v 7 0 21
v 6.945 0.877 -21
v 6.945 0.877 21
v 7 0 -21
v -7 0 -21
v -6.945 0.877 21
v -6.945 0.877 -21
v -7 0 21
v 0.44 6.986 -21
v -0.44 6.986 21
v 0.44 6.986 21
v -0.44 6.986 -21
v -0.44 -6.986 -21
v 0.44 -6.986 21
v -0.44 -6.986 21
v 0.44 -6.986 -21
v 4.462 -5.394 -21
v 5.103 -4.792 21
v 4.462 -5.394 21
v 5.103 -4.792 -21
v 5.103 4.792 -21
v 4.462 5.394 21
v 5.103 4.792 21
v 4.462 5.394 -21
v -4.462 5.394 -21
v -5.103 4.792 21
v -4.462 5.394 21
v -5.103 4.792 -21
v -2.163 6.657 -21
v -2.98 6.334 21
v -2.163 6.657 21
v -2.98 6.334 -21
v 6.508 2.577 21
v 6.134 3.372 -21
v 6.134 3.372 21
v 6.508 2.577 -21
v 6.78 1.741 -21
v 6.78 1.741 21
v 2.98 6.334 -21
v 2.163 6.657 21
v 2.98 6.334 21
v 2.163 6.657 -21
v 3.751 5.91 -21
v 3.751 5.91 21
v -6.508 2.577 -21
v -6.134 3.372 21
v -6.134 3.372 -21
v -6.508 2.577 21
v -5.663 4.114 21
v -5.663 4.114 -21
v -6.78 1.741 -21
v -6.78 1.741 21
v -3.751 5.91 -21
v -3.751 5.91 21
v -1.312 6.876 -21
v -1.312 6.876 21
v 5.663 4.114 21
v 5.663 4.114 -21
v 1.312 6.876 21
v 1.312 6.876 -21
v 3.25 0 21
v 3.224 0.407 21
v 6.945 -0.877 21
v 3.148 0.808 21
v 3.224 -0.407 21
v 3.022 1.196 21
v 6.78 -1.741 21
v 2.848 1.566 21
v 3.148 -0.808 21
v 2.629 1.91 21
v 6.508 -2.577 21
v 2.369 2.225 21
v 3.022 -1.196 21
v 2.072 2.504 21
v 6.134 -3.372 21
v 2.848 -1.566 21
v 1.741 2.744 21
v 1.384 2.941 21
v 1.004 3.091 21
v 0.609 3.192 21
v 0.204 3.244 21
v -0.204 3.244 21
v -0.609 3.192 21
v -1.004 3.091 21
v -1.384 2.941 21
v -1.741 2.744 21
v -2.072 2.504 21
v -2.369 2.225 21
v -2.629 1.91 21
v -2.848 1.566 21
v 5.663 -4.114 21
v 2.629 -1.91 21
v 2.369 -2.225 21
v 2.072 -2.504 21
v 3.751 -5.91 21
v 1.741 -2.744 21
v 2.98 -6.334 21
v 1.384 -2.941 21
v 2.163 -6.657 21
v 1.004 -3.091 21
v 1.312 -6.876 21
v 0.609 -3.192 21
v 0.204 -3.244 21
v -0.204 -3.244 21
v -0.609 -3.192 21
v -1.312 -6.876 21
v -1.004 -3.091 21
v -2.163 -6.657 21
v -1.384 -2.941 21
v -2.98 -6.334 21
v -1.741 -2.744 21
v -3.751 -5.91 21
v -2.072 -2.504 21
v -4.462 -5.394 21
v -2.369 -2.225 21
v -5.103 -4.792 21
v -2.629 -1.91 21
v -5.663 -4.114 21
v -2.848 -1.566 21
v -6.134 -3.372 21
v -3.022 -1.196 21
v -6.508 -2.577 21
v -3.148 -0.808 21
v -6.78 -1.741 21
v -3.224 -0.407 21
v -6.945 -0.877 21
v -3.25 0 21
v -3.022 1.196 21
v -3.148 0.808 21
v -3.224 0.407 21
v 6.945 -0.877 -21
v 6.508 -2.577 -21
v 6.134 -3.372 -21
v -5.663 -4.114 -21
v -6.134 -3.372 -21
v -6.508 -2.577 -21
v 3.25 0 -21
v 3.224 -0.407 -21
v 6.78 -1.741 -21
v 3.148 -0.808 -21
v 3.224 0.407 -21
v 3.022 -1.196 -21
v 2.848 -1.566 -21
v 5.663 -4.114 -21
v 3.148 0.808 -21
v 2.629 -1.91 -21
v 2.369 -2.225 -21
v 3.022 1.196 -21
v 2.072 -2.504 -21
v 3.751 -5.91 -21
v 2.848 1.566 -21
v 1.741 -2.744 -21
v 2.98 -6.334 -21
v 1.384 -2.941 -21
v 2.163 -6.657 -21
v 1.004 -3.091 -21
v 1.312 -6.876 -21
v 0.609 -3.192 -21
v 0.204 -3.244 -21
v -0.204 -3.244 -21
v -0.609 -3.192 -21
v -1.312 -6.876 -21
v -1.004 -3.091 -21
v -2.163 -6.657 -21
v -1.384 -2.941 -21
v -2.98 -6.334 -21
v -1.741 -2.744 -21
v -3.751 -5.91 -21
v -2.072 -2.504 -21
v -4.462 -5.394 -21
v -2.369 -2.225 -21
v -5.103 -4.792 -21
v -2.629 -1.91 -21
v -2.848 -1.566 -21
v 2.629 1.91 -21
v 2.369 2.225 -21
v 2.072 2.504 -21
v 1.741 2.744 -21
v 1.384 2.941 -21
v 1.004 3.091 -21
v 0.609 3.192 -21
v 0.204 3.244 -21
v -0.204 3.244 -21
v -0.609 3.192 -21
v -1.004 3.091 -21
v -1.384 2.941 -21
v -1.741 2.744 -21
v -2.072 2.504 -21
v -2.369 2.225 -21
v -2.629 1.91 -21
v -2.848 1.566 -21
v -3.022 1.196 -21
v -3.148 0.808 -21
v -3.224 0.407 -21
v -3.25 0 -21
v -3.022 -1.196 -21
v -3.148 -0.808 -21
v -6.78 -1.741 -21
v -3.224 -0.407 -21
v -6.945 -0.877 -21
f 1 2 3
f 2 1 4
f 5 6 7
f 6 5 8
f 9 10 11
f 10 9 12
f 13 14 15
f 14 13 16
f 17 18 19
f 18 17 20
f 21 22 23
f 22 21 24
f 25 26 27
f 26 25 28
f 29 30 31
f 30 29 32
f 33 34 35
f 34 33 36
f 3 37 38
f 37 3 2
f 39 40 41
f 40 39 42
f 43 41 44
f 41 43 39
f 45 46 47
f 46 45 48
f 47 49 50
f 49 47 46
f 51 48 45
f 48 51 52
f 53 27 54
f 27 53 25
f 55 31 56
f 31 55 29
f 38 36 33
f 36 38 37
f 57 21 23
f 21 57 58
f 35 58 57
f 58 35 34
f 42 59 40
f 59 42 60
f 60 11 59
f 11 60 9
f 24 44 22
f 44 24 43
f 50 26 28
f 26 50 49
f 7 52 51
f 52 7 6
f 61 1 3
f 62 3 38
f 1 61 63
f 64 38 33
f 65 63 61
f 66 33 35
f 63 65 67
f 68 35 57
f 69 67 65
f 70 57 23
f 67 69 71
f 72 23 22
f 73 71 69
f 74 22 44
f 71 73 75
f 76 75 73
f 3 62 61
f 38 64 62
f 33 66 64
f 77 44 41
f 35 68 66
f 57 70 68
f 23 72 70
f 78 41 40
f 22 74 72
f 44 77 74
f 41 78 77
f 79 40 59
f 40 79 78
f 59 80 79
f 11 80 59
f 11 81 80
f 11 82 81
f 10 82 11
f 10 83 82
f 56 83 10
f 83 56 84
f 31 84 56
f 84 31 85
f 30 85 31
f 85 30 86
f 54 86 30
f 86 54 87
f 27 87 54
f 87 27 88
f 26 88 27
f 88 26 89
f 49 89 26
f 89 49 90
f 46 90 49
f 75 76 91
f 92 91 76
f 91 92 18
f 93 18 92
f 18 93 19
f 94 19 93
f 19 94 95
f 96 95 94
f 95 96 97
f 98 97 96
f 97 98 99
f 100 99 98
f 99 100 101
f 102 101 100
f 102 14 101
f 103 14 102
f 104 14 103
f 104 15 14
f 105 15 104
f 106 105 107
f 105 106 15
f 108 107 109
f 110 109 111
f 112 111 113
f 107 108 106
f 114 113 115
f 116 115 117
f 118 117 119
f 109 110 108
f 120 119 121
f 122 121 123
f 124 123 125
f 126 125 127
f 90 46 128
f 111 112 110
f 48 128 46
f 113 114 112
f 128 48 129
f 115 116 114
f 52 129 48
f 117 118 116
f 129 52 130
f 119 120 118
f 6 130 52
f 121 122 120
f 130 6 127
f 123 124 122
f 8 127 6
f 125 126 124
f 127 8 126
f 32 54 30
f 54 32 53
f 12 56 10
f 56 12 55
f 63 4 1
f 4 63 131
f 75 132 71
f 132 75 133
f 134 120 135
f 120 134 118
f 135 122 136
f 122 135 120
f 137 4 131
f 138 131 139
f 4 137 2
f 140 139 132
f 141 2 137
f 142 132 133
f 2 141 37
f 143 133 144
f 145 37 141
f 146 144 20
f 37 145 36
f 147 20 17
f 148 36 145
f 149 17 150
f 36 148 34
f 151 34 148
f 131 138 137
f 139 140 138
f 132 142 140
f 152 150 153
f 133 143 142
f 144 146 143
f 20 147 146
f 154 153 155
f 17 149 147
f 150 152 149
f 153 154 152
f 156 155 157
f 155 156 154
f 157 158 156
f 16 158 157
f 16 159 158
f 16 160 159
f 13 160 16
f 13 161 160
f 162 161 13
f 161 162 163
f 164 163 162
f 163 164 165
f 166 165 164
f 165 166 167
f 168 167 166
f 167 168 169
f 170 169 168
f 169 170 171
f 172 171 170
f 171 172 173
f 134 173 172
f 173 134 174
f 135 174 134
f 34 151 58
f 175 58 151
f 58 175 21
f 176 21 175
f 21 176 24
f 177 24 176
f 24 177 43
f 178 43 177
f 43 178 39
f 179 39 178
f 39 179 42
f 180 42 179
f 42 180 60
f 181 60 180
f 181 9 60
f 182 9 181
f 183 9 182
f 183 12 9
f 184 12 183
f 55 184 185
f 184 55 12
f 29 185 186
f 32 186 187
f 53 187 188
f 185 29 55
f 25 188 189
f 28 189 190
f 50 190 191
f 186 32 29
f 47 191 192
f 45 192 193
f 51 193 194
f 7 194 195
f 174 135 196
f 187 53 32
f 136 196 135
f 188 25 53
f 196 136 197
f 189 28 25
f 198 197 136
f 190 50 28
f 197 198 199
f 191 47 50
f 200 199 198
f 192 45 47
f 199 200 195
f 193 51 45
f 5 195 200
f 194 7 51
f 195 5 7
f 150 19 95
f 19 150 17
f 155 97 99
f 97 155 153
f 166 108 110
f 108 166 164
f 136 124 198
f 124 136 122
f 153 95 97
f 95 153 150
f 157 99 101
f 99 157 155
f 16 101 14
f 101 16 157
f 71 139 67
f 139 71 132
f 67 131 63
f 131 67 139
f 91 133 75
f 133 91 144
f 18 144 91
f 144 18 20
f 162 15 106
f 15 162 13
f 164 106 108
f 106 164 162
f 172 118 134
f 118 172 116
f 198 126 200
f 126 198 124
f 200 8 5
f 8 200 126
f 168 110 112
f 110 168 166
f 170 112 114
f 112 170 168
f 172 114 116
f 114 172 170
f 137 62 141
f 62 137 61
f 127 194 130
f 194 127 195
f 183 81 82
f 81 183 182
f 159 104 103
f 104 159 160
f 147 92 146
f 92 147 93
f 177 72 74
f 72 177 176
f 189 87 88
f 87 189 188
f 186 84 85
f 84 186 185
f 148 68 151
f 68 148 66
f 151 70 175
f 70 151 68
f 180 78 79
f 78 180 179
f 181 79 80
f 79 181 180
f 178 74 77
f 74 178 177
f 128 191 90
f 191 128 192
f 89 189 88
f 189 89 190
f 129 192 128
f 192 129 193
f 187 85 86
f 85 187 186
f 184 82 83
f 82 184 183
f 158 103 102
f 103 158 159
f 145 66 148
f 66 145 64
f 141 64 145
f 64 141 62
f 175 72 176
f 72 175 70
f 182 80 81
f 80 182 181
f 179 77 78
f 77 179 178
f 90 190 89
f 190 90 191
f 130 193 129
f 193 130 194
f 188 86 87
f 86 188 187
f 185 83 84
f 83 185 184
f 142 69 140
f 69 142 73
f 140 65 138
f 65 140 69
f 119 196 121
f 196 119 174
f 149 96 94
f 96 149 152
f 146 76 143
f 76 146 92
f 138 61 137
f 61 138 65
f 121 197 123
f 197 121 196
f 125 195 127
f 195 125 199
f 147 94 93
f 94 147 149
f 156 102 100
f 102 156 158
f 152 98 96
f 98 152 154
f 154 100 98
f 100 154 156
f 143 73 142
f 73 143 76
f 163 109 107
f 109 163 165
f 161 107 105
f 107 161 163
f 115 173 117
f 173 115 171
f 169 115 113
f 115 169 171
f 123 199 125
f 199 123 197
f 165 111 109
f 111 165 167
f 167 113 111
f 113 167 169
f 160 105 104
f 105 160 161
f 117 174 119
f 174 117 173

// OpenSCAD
$fn = 50;


difference() {
	union() {
		translate(v = [0, 0, -21.0000000000]) {
			cylinder(h = 42, r = 7.0000000000);
		}
	}
	union() {
		translate(v = [0, 0, -100.0000000000]) {
			cylinder(h = 200, r = 3.2500000000);
		}
	}
}
